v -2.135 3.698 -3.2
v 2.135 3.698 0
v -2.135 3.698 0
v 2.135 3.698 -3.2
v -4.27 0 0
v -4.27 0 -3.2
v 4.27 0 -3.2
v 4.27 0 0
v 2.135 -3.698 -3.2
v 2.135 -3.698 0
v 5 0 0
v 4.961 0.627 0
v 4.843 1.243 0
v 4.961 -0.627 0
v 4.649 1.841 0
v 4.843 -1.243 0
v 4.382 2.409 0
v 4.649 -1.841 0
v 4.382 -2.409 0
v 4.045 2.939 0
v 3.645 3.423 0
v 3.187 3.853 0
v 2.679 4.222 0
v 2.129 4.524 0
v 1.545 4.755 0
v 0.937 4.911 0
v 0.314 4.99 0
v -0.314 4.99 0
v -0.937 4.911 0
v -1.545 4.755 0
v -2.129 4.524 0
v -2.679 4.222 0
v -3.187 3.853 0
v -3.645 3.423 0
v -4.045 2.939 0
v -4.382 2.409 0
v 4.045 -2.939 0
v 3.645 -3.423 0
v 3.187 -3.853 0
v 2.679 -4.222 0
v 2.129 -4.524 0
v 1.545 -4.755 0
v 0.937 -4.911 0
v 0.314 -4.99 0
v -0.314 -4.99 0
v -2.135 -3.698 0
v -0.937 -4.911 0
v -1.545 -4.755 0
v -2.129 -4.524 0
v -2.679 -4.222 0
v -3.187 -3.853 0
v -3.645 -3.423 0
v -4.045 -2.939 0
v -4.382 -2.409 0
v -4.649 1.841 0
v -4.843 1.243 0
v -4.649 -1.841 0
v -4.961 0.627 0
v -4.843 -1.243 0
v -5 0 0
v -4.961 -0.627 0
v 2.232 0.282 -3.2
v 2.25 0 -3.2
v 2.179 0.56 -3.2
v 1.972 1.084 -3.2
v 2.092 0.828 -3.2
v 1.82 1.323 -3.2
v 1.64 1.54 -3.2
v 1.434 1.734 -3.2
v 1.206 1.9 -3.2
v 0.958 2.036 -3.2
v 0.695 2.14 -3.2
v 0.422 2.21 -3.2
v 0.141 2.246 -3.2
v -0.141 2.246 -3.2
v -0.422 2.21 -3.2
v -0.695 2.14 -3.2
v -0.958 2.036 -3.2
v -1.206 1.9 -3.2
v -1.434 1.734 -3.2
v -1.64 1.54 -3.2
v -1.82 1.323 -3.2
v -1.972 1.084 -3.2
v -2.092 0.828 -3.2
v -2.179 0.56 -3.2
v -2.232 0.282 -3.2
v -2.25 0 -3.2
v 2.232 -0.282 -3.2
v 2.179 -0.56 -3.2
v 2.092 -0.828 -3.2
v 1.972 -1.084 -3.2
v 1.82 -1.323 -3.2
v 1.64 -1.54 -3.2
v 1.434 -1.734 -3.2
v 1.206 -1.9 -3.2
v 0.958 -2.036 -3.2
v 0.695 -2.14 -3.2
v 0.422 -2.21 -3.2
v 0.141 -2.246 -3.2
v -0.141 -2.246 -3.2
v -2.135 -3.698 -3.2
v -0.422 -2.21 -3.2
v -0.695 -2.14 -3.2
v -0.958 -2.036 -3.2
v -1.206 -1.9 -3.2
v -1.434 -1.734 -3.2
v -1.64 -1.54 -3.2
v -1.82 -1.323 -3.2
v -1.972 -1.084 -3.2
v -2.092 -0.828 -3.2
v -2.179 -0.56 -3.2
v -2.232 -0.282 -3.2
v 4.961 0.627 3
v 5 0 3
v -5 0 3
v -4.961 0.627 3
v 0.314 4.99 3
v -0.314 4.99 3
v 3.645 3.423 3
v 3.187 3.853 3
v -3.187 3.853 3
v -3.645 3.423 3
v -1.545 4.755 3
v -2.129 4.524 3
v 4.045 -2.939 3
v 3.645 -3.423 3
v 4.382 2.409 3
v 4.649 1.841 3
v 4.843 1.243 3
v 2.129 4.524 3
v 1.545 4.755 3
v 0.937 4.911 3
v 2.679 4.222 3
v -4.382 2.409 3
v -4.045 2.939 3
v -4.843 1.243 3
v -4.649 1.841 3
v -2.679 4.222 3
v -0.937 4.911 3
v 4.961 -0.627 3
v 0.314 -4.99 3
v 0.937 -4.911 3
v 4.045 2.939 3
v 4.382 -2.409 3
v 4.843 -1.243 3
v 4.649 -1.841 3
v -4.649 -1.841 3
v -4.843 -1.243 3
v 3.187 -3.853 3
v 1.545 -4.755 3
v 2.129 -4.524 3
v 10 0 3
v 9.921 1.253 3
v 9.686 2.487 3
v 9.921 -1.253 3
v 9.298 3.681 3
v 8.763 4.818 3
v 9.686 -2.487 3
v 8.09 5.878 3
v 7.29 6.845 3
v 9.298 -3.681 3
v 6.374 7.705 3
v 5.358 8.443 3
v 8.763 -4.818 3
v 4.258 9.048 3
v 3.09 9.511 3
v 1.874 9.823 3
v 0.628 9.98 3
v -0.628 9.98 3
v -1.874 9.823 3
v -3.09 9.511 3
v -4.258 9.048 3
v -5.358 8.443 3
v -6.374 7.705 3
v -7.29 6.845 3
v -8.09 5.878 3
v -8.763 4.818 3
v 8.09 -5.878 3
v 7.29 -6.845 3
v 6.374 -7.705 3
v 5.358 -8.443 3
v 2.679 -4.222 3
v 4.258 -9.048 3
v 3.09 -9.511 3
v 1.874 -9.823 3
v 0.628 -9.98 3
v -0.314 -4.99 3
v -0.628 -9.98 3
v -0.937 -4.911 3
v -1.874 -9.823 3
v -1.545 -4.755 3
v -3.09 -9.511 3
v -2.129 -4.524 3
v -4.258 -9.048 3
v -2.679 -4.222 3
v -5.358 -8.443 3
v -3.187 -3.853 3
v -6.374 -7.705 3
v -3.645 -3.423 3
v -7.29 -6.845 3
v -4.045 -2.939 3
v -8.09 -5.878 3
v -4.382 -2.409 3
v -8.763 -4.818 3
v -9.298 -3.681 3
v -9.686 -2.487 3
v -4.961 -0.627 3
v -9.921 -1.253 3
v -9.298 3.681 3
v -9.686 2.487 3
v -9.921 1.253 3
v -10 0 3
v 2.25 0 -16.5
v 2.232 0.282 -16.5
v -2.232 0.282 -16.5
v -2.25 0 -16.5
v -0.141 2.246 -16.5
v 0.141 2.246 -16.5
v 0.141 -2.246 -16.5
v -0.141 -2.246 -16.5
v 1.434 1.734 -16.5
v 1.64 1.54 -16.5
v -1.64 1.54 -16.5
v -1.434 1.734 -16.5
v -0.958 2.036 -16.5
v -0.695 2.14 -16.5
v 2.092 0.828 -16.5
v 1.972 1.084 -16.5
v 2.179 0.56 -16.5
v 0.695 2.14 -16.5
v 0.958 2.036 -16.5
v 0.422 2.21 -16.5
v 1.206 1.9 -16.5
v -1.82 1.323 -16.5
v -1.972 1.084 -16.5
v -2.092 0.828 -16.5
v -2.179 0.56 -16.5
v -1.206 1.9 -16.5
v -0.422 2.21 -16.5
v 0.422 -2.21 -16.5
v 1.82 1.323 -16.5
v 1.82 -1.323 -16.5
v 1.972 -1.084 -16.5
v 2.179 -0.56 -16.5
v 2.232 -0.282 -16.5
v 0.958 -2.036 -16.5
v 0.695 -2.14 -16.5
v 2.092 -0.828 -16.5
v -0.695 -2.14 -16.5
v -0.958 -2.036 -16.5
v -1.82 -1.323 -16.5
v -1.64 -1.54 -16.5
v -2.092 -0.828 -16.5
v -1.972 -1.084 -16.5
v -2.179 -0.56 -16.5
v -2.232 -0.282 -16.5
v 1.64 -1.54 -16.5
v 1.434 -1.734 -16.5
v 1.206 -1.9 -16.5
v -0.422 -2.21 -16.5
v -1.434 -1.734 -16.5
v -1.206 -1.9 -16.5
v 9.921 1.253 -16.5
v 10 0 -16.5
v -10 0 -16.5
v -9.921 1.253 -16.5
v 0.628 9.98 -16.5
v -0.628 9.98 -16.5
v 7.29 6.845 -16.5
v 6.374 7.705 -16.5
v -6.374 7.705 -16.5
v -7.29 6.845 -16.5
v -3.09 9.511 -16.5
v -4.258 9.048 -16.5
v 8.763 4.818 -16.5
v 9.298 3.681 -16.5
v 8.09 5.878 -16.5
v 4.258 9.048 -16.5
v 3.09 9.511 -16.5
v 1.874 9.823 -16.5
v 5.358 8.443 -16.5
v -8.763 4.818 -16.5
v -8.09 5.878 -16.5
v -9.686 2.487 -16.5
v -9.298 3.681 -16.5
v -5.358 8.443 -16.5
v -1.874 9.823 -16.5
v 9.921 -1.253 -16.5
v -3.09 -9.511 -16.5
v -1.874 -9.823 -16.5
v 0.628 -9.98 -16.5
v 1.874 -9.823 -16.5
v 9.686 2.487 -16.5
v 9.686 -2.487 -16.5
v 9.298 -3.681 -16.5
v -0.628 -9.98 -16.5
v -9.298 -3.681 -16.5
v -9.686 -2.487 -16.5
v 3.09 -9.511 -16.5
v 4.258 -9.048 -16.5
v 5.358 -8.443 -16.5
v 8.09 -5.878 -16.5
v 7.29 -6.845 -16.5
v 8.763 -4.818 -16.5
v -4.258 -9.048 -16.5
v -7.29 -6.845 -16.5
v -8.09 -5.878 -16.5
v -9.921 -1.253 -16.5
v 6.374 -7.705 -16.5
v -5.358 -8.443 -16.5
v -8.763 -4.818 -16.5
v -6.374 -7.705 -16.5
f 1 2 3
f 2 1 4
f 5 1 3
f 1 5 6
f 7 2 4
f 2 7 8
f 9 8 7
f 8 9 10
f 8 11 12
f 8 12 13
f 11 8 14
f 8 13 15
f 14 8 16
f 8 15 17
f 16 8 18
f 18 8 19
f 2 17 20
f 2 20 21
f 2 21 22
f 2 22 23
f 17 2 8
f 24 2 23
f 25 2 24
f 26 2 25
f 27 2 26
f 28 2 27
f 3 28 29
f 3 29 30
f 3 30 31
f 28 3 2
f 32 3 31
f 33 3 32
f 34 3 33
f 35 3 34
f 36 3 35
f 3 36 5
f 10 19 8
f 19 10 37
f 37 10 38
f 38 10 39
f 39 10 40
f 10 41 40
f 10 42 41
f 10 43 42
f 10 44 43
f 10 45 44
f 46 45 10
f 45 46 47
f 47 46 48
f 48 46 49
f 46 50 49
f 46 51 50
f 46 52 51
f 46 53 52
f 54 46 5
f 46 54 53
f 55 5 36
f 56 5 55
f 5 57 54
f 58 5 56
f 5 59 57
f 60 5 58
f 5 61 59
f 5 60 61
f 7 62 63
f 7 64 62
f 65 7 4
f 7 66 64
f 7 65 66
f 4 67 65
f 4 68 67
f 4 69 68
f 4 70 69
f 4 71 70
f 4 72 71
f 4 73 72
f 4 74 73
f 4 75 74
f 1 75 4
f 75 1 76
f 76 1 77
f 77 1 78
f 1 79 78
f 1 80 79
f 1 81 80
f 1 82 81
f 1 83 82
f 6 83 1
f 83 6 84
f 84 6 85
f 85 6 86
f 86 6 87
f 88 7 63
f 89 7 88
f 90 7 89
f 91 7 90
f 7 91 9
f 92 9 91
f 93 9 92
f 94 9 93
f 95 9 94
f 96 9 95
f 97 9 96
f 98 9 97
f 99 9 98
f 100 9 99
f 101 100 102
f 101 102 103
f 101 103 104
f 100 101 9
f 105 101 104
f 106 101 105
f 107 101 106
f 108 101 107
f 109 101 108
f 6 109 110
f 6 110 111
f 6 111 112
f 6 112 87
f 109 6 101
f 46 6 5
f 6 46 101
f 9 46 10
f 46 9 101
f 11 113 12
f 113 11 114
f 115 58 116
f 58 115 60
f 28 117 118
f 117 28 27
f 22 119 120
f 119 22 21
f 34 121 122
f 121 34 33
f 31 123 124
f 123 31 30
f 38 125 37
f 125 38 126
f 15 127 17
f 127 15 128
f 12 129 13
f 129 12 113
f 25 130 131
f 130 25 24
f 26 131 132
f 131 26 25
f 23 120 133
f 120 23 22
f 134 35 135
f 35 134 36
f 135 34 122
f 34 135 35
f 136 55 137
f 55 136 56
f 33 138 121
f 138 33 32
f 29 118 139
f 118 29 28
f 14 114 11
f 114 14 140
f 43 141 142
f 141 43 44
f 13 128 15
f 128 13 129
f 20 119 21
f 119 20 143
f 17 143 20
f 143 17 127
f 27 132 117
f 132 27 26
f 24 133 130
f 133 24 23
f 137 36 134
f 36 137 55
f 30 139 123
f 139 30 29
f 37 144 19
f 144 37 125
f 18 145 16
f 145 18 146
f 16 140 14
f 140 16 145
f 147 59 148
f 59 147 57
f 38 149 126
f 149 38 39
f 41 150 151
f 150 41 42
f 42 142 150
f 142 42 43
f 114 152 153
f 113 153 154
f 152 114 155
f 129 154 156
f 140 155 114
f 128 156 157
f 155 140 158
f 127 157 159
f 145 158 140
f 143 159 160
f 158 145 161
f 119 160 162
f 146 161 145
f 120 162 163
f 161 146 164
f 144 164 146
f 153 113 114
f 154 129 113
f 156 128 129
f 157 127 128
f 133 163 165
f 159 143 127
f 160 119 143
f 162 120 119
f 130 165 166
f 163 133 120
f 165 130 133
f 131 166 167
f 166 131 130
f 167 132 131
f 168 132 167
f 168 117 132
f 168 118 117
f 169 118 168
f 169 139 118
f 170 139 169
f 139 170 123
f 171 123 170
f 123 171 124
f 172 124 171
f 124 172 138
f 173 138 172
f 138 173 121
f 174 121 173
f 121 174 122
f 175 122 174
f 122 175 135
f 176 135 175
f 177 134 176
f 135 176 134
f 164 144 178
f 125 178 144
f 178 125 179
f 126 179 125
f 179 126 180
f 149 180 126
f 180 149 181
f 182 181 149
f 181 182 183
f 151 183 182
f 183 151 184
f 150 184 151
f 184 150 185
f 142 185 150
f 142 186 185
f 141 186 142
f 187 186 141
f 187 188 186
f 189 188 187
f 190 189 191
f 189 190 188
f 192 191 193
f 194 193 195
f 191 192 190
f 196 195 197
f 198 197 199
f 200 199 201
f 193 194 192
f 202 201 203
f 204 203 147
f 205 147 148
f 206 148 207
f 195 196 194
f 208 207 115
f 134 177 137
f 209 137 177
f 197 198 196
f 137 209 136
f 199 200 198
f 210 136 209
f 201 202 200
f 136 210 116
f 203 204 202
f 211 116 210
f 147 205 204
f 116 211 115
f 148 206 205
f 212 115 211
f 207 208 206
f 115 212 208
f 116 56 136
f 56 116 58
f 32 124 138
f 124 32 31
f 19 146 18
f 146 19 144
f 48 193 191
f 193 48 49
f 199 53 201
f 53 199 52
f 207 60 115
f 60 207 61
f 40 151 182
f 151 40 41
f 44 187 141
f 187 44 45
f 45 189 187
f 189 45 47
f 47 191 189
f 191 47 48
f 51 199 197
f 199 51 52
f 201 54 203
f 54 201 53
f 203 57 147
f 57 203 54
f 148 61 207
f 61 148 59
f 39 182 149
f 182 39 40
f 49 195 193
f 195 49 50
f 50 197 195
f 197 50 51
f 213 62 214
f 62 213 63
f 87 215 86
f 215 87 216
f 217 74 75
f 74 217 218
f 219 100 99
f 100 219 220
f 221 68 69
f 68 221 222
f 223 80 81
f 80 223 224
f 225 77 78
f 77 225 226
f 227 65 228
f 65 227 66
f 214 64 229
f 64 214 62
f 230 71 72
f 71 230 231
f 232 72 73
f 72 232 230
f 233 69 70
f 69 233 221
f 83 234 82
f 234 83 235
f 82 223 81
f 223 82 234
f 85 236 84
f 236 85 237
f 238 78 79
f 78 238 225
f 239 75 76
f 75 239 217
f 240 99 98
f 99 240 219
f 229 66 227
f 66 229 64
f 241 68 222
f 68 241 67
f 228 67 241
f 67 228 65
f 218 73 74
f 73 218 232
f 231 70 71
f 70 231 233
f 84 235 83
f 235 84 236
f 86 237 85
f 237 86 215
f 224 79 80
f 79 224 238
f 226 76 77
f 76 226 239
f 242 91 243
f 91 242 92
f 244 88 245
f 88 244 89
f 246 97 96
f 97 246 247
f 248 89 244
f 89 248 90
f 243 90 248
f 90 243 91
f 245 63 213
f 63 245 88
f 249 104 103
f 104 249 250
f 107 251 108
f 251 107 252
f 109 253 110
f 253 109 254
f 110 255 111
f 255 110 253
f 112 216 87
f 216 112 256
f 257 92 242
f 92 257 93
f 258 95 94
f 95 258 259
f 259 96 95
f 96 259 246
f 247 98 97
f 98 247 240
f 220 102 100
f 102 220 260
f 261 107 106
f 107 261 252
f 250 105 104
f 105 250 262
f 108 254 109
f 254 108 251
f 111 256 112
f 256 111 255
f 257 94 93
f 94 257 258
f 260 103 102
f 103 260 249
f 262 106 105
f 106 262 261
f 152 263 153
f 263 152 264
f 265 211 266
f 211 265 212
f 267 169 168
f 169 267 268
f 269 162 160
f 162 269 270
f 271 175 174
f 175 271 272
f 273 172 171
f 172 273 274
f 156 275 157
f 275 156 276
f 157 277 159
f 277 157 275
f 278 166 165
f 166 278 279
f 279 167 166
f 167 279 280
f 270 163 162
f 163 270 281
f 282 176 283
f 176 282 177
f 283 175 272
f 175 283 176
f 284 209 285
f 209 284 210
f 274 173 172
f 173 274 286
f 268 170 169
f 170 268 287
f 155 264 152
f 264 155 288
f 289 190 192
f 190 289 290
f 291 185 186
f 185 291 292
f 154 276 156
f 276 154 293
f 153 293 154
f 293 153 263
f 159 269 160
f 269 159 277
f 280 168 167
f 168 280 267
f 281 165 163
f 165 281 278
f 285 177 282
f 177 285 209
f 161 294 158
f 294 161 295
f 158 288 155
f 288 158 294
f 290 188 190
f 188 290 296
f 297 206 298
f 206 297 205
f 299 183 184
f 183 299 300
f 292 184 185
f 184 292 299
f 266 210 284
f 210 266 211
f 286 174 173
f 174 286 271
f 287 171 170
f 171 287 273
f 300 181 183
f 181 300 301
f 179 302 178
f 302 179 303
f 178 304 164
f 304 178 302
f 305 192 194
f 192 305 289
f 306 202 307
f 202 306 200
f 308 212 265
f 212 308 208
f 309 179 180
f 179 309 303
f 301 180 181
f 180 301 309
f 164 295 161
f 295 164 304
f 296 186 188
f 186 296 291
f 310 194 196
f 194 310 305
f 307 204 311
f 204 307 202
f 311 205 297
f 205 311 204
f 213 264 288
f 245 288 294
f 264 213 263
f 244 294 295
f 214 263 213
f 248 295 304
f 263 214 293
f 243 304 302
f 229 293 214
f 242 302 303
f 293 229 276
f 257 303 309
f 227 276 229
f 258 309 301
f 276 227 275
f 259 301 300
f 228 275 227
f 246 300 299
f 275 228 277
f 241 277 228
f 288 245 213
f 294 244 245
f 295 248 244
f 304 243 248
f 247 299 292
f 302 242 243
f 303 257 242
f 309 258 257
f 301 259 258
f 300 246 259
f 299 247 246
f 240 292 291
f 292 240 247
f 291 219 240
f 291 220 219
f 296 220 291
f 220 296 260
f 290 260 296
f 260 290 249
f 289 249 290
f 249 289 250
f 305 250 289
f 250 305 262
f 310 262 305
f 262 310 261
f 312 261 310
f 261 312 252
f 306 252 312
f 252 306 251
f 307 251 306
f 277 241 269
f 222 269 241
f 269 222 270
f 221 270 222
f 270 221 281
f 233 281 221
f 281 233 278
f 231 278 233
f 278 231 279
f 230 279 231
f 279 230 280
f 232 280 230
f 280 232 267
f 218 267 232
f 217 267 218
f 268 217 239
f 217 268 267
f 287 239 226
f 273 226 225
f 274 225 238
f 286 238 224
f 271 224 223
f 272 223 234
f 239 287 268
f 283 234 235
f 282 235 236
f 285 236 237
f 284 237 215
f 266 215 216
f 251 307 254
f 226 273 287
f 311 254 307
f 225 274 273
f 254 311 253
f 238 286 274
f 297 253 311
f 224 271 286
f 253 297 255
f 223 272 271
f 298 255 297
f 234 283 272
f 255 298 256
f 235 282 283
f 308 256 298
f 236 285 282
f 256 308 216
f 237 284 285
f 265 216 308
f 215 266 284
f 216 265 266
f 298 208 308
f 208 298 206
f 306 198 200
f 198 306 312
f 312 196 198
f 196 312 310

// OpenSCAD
$fn = 50;

difference() {
	union() {
		translate(v = [0, 0, -16.5]) {
			cylinder(h = 19.5, r = 10.0);
		}
	}
	union() {
		translate(v = [0, 0, 0]) {
			rotate(a = [0, 0, 0]) {
				difference() {
					union() {
						translate(v = [0, 0, -3.2]) {
							linear_extrude(height = 3.2) {
								polygon(points = [[4.2698, 0.0], [2.1349000000000005, 3.697755269078796], [-2.134899999999999, 3.6977552690787965], [-4.2698, 5.228996902999369e-16], [-2.134900000000002, -3.6977552690787956], [2.1348999999999974, -3.697755269078798]]);
							}
						}
					}
					union();
				}
			}
		}
		#cylinder(h = 3, r = 5.0);
		#translate(v = [0, 0, -100.0]) {
			cylinder(h = 200, r = 2.25);
		}
	}
}
